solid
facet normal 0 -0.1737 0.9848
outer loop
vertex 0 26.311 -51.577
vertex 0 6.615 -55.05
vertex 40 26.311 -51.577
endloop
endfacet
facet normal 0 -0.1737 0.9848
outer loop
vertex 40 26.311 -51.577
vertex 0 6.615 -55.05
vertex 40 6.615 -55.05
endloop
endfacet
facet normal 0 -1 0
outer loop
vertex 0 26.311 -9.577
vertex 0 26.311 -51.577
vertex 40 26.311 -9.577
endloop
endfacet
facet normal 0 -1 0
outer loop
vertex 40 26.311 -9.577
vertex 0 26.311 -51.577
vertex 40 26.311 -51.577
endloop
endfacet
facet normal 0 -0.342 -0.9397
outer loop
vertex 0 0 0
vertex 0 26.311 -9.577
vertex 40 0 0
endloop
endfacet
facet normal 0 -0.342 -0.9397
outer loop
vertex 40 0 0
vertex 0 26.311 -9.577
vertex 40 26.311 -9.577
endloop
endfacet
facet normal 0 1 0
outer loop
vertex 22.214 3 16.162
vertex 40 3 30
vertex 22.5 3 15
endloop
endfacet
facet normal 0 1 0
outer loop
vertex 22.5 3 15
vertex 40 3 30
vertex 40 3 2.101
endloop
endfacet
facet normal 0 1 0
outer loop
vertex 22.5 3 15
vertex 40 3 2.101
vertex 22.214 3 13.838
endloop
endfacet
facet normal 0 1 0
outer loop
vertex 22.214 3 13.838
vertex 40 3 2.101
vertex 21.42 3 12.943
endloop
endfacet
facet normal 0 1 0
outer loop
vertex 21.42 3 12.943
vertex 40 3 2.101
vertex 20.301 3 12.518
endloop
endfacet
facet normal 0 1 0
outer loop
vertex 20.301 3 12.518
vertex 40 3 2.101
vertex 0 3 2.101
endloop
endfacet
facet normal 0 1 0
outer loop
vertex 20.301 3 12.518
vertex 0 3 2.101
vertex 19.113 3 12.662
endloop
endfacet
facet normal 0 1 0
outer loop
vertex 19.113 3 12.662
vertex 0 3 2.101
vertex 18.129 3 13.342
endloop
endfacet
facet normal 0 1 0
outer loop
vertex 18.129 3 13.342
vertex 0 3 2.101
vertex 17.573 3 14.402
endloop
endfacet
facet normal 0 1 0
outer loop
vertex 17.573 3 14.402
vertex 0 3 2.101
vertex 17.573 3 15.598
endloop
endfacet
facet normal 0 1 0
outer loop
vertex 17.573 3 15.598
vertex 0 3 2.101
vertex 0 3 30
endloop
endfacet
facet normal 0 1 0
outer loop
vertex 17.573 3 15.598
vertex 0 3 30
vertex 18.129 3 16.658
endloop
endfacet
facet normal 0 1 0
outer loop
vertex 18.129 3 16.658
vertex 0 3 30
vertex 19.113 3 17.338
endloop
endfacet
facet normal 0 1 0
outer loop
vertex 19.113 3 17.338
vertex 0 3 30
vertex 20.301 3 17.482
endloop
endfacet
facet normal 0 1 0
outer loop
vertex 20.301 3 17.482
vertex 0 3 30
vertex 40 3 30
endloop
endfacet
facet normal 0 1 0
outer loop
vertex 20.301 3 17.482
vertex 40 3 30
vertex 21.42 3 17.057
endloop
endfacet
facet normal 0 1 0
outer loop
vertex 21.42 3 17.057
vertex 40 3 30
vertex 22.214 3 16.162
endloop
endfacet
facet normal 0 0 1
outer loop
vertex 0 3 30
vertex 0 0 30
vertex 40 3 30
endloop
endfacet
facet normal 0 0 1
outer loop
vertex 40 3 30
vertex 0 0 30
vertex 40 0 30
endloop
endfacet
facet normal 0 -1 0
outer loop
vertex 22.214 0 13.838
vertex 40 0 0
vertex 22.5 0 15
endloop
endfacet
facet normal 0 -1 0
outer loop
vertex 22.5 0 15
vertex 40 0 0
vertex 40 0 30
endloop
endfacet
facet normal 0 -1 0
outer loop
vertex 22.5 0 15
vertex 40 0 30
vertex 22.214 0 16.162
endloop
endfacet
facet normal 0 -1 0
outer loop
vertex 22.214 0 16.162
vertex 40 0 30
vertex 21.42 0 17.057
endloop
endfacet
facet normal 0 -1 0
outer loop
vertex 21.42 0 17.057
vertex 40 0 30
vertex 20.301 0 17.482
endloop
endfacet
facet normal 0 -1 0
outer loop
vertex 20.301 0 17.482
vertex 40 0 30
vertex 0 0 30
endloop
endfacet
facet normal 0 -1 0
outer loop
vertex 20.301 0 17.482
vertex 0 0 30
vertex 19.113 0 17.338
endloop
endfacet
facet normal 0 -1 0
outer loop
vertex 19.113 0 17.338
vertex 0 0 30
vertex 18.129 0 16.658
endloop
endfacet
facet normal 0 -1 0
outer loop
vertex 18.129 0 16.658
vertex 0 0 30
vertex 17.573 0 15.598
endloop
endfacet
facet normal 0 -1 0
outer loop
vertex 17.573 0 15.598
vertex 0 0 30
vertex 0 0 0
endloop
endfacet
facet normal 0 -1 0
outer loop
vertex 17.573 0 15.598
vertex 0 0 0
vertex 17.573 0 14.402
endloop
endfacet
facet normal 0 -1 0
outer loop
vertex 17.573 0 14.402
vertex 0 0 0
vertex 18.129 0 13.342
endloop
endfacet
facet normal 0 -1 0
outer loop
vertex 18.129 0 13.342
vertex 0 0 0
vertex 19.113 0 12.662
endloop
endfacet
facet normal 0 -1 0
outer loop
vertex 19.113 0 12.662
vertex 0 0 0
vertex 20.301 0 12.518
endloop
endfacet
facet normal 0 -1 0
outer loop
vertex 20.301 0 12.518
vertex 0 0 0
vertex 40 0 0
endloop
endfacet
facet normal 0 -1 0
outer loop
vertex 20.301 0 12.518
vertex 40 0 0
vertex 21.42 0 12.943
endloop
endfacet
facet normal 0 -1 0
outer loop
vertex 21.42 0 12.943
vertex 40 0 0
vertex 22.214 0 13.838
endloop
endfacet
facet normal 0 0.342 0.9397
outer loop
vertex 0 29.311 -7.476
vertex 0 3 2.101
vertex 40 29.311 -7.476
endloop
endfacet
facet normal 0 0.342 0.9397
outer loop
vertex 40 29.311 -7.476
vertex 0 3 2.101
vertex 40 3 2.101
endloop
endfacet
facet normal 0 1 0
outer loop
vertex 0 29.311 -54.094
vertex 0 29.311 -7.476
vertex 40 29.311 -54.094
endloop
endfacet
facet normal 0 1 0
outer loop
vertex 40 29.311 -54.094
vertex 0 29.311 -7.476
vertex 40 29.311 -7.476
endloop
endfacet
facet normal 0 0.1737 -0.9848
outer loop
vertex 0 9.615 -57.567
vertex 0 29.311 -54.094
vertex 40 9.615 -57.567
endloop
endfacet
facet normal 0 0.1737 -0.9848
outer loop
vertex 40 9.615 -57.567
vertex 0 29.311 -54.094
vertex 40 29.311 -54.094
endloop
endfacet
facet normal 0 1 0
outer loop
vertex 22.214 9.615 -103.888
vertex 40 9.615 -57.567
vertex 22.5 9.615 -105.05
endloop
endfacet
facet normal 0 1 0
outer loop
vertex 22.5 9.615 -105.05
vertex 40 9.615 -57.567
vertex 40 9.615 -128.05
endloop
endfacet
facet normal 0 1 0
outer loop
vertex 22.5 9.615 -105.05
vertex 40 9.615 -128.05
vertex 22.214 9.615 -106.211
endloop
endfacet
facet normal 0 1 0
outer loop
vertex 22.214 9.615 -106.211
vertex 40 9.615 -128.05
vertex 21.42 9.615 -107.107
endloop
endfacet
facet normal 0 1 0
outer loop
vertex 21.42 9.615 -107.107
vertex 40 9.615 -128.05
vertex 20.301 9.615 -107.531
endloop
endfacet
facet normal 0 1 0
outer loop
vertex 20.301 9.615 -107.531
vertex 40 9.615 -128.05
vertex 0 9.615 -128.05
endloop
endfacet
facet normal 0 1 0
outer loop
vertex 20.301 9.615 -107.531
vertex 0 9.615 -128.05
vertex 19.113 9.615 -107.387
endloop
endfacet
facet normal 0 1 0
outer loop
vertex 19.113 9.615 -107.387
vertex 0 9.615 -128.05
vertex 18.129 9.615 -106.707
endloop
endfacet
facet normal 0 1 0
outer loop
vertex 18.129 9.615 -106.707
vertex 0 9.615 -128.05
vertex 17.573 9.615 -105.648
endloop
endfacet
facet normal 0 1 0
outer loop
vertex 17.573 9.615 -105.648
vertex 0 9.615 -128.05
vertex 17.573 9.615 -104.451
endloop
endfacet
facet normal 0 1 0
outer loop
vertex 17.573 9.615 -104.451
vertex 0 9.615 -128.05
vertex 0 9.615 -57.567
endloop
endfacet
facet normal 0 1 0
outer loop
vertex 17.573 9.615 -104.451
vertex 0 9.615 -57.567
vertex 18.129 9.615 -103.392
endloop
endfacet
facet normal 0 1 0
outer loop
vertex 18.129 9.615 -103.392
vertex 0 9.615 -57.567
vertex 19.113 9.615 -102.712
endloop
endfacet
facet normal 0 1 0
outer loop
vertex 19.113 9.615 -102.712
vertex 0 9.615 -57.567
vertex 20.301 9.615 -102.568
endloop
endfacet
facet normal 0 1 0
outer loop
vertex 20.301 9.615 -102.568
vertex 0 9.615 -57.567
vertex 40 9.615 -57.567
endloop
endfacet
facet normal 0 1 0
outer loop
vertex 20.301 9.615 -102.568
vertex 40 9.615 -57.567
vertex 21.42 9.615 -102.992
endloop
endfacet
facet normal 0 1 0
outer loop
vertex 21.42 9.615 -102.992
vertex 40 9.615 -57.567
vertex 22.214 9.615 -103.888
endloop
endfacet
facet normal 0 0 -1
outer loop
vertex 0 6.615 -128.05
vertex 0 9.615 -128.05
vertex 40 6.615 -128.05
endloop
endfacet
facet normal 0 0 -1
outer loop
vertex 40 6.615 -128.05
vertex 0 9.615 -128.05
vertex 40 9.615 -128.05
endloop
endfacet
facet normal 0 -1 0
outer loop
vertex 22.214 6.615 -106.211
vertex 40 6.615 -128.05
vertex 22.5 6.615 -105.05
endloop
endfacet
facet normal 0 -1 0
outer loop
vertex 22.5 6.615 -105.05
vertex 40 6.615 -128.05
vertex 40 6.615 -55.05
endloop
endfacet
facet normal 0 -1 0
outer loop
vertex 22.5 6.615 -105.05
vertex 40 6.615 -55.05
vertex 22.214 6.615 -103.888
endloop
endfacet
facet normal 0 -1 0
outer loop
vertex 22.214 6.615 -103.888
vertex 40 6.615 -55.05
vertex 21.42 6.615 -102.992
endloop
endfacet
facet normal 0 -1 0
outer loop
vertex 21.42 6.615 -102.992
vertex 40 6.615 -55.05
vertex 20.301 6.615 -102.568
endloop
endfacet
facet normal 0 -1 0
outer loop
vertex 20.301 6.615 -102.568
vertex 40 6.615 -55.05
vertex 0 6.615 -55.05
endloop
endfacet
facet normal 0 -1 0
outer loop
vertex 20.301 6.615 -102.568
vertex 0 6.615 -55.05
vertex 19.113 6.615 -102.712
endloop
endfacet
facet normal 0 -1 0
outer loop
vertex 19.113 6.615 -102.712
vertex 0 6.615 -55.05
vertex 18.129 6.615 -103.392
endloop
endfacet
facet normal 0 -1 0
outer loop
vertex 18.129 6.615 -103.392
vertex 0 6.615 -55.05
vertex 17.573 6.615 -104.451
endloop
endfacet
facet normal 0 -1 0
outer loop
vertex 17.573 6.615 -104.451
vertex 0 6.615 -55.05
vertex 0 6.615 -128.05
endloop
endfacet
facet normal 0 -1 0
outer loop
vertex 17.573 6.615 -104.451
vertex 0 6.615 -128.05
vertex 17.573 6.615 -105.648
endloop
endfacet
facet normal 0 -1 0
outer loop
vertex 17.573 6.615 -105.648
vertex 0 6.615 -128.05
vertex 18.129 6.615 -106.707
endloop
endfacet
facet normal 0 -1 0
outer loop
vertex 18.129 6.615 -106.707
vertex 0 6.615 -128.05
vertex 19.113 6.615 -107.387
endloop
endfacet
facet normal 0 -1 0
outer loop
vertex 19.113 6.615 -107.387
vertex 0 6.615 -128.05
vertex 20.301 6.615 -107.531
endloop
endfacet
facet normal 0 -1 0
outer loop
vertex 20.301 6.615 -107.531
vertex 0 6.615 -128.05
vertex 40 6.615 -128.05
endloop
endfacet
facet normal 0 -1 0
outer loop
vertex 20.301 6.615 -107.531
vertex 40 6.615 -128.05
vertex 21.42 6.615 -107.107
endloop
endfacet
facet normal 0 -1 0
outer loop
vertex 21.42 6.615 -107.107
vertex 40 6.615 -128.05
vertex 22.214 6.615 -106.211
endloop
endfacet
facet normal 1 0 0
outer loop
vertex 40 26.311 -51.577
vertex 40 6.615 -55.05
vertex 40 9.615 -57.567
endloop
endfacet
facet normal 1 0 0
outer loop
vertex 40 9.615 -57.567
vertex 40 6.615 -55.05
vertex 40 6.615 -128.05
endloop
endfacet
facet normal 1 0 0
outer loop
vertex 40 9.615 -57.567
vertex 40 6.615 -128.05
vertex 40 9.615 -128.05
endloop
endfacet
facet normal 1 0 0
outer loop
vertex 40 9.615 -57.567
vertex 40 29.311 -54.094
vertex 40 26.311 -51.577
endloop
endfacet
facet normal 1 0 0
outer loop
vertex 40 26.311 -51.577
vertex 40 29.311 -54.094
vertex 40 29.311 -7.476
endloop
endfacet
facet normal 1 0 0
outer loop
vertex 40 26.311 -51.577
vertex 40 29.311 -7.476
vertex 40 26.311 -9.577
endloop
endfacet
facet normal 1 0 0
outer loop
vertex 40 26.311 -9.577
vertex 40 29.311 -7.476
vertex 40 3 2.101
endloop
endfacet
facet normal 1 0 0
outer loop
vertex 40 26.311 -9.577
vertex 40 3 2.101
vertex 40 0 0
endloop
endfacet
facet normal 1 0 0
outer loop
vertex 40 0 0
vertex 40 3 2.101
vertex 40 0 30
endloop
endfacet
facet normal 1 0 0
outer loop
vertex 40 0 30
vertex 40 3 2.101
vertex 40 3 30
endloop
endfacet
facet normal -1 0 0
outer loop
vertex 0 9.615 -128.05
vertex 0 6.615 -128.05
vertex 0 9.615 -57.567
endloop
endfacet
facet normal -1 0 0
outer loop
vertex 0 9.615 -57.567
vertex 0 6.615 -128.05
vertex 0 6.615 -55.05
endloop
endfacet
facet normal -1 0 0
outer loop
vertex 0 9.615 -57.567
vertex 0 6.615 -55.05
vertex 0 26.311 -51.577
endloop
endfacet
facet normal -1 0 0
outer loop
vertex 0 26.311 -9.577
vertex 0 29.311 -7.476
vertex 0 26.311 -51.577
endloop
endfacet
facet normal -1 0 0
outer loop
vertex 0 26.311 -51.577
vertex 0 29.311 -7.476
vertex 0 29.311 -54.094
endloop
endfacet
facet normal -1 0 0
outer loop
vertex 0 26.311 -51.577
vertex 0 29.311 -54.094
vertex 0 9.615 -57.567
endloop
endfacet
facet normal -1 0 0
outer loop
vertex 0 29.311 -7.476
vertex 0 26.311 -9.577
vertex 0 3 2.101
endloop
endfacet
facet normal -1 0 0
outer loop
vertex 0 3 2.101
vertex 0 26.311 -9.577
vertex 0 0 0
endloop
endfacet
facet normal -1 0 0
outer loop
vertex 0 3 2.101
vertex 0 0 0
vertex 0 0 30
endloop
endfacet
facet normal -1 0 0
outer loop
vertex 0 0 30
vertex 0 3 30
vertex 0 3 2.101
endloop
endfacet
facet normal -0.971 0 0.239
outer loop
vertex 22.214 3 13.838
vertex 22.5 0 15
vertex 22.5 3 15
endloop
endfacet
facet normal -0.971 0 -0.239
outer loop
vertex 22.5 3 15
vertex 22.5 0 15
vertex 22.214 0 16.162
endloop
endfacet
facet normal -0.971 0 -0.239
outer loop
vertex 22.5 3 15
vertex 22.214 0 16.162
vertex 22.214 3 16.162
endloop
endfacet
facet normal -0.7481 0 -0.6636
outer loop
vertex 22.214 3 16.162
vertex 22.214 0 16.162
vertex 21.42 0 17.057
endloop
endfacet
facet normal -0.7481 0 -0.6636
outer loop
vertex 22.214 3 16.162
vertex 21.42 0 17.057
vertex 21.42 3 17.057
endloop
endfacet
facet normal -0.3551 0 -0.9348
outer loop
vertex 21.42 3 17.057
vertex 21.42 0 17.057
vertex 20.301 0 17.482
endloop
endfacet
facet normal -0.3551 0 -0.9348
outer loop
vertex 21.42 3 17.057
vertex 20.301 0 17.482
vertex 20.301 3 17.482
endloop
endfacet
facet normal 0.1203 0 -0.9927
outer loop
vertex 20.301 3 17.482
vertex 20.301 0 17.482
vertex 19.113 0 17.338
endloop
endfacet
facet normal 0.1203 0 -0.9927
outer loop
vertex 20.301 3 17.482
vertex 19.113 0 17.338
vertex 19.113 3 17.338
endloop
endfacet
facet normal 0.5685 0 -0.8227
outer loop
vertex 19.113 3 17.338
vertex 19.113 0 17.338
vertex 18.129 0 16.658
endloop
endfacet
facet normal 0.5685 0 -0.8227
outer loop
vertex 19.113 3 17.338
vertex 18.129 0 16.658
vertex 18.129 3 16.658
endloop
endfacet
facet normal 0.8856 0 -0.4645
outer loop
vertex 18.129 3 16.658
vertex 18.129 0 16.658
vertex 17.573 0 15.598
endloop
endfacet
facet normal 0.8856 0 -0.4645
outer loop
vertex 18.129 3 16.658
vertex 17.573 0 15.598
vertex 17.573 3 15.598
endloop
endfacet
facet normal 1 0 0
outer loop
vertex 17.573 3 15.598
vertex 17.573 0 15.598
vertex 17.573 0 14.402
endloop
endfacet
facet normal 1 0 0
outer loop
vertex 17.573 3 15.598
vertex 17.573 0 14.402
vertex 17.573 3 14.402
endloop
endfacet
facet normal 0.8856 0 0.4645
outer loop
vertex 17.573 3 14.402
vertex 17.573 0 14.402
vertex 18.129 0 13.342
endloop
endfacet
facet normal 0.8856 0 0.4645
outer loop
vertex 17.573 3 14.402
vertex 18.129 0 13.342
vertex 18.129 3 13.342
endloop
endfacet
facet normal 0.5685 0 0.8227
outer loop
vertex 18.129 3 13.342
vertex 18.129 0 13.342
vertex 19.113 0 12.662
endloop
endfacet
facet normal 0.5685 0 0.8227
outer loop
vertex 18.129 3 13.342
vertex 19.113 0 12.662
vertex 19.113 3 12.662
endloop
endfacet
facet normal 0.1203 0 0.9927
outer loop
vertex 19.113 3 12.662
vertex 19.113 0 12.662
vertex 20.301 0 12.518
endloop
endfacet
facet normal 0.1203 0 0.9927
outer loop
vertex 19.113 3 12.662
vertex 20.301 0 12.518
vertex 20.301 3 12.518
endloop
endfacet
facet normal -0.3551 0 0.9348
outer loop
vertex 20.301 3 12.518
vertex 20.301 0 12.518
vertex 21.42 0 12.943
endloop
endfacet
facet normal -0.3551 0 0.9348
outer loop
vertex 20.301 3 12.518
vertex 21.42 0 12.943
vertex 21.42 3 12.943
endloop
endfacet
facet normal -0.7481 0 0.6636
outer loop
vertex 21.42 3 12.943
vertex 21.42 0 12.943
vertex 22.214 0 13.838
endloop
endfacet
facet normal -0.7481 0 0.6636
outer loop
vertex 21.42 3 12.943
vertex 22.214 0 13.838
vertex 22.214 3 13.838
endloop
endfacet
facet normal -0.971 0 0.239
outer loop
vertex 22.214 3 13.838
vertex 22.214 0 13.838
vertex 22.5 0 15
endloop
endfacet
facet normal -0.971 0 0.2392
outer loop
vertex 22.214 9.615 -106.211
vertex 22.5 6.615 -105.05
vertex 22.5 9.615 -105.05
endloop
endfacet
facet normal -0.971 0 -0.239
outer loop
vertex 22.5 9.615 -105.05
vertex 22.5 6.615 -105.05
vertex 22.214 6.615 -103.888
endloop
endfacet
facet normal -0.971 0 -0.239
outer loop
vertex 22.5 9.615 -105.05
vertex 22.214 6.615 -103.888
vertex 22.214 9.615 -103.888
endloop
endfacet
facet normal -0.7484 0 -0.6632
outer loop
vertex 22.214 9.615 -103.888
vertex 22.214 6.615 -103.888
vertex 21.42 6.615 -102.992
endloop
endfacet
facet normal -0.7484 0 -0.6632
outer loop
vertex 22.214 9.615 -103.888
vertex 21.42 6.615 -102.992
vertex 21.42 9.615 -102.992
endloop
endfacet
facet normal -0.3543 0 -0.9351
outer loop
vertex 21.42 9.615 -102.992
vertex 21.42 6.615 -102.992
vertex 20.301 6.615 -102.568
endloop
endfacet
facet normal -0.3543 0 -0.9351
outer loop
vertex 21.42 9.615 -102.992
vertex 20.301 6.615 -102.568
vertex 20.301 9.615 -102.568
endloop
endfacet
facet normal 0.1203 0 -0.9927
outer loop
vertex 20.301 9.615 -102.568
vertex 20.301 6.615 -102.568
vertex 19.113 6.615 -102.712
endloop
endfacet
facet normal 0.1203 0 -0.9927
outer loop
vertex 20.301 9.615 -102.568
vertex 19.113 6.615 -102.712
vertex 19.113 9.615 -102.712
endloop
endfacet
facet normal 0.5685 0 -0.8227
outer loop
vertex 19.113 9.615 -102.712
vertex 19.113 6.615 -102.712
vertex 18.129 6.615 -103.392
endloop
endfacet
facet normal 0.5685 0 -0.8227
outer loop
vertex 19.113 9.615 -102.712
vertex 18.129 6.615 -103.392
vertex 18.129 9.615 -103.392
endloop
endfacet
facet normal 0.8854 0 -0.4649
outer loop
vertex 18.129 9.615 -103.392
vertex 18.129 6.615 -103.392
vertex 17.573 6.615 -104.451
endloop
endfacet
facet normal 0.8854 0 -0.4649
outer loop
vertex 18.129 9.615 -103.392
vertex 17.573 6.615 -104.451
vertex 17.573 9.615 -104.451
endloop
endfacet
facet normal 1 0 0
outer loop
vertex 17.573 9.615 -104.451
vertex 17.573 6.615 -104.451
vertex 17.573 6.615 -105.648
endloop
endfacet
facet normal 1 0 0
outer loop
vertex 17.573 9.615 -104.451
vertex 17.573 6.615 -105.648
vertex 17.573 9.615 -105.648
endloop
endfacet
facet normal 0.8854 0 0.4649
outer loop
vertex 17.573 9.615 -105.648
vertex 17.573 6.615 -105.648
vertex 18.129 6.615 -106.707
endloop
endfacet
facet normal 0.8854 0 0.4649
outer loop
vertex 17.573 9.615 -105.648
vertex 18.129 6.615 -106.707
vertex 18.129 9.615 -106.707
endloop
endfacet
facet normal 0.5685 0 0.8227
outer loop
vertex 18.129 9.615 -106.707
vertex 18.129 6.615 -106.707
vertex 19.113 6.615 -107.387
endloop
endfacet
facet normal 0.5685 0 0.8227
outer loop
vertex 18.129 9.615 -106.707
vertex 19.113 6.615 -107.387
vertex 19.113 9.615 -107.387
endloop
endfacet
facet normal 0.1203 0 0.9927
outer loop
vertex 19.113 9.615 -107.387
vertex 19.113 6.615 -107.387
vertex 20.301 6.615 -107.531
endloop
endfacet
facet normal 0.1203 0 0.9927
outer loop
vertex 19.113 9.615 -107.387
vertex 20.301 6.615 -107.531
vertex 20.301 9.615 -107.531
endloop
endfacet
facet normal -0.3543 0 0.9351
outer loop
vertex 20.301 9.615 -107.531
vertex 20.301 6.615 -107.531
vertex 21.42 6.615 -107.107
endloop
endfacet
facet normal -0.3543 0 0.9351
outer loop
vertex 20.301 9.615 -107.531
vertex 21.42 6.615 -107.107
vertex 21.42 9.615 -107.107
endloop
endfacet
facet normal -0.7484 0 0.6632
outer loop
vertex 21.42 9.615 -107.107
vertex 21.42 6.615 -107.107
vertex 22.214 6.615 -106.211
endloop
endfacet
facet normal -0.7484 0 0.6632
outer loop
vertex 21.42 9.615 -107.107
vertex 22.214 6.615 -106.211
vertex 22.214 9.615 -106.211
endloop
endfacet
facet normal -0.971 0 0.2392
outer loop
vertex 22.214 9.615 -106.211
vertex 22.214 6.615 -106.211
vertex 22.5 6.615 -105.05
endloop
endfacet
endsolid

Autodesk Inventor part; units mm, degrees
ref_plane "YZ Plane" through (0, 0, 0) normal (1, 0, 0) x (0, 1, 0)
ref_plane "XZ Plane" through (0, 0, 0) normal (0, 1, 0) x (-1, 0, 0)
ref_plane "XY Plane" through (0, 0, 0) normal (0, 0, 1) x (1, 0, 0)
sketch "Boceto1" plane through (0, 0, 0) normal (1, 0, 0) x (0, 1, 0)
  line L0 (3, 30) -> (0, 30)
  line L1 (0, 30) -> (0, 0)
  line L2 (0, 0) -> (26.3114, -9.5766)
  line L3 (0, 0) -> (28, 0) construction
  line L4 (26.3114, -9.5766) -> (26.3114, -51.5766)
  line L5 (26.3114, -51.5766) -> (6.6152, -55.0495)
  line L6 (6.6152, -55.0495) -> (6.6152, -128.0495)
  line L7 (6.6152, -128.0495) -> (9.6152, -128.0495)
  line L8 (9.6152, -128.0495) -> (9.6152, -57.5668)
  line L9 (6.6152, -55.0495) -> (6.6152, -58.0495)
  line L10 (29.3114, -9.5766) -> (29.3114, -54.0939)
  line L11 (27.3375, -6.7575) -> (3, 2.1006)
  line L12 (3, 2.1006) -> (3, 30)
  line L13 (29.3114, -54.0939) -> (9.6152, -57.5668)
  line L14 (27.3375, -6.7575) -> (29.3114, -7.4759)
  line L15 (29.3114, -9.5766) -> (29.3114, -7.4759)
  dimension "d0" = 3
  dimension "d2" = 28
  dimension "d3" = 20
  dimension "d6" = 100
  dimension "d7" = 73
  dimension "d8" = 3
  dimension "d9" = 3
  dimension "d12" = 3
  dimension "d13" = 3
extrude "Extrusión1" add sketch "Boceto1" along normal blind 40
sketch "Boceto2" plane through (0, 0, 0) normal (0, -1, 0) x (1, 0, 0)
  circle A0 centre (20, 15) radius 2.5
  point P0 (0, 0)
  dimension "d16" = 5
extrude "Extrusión2" cut sketch "Boceto2" against normal blind 3
sketch "Boceto3" plane through (0, 6.6152, -128.0495) normal (0, -1, 0) x (1, 0, 0)
  circle A0 centre (20, 23) radius 2.5
  point P0 (0, 128.0495)
  dimension "d19" = 5
extrude "Extrusión3" cut sketch "Boceto3" against normal blind 3
properties part number "1.2.3.UpperArmLink1"
